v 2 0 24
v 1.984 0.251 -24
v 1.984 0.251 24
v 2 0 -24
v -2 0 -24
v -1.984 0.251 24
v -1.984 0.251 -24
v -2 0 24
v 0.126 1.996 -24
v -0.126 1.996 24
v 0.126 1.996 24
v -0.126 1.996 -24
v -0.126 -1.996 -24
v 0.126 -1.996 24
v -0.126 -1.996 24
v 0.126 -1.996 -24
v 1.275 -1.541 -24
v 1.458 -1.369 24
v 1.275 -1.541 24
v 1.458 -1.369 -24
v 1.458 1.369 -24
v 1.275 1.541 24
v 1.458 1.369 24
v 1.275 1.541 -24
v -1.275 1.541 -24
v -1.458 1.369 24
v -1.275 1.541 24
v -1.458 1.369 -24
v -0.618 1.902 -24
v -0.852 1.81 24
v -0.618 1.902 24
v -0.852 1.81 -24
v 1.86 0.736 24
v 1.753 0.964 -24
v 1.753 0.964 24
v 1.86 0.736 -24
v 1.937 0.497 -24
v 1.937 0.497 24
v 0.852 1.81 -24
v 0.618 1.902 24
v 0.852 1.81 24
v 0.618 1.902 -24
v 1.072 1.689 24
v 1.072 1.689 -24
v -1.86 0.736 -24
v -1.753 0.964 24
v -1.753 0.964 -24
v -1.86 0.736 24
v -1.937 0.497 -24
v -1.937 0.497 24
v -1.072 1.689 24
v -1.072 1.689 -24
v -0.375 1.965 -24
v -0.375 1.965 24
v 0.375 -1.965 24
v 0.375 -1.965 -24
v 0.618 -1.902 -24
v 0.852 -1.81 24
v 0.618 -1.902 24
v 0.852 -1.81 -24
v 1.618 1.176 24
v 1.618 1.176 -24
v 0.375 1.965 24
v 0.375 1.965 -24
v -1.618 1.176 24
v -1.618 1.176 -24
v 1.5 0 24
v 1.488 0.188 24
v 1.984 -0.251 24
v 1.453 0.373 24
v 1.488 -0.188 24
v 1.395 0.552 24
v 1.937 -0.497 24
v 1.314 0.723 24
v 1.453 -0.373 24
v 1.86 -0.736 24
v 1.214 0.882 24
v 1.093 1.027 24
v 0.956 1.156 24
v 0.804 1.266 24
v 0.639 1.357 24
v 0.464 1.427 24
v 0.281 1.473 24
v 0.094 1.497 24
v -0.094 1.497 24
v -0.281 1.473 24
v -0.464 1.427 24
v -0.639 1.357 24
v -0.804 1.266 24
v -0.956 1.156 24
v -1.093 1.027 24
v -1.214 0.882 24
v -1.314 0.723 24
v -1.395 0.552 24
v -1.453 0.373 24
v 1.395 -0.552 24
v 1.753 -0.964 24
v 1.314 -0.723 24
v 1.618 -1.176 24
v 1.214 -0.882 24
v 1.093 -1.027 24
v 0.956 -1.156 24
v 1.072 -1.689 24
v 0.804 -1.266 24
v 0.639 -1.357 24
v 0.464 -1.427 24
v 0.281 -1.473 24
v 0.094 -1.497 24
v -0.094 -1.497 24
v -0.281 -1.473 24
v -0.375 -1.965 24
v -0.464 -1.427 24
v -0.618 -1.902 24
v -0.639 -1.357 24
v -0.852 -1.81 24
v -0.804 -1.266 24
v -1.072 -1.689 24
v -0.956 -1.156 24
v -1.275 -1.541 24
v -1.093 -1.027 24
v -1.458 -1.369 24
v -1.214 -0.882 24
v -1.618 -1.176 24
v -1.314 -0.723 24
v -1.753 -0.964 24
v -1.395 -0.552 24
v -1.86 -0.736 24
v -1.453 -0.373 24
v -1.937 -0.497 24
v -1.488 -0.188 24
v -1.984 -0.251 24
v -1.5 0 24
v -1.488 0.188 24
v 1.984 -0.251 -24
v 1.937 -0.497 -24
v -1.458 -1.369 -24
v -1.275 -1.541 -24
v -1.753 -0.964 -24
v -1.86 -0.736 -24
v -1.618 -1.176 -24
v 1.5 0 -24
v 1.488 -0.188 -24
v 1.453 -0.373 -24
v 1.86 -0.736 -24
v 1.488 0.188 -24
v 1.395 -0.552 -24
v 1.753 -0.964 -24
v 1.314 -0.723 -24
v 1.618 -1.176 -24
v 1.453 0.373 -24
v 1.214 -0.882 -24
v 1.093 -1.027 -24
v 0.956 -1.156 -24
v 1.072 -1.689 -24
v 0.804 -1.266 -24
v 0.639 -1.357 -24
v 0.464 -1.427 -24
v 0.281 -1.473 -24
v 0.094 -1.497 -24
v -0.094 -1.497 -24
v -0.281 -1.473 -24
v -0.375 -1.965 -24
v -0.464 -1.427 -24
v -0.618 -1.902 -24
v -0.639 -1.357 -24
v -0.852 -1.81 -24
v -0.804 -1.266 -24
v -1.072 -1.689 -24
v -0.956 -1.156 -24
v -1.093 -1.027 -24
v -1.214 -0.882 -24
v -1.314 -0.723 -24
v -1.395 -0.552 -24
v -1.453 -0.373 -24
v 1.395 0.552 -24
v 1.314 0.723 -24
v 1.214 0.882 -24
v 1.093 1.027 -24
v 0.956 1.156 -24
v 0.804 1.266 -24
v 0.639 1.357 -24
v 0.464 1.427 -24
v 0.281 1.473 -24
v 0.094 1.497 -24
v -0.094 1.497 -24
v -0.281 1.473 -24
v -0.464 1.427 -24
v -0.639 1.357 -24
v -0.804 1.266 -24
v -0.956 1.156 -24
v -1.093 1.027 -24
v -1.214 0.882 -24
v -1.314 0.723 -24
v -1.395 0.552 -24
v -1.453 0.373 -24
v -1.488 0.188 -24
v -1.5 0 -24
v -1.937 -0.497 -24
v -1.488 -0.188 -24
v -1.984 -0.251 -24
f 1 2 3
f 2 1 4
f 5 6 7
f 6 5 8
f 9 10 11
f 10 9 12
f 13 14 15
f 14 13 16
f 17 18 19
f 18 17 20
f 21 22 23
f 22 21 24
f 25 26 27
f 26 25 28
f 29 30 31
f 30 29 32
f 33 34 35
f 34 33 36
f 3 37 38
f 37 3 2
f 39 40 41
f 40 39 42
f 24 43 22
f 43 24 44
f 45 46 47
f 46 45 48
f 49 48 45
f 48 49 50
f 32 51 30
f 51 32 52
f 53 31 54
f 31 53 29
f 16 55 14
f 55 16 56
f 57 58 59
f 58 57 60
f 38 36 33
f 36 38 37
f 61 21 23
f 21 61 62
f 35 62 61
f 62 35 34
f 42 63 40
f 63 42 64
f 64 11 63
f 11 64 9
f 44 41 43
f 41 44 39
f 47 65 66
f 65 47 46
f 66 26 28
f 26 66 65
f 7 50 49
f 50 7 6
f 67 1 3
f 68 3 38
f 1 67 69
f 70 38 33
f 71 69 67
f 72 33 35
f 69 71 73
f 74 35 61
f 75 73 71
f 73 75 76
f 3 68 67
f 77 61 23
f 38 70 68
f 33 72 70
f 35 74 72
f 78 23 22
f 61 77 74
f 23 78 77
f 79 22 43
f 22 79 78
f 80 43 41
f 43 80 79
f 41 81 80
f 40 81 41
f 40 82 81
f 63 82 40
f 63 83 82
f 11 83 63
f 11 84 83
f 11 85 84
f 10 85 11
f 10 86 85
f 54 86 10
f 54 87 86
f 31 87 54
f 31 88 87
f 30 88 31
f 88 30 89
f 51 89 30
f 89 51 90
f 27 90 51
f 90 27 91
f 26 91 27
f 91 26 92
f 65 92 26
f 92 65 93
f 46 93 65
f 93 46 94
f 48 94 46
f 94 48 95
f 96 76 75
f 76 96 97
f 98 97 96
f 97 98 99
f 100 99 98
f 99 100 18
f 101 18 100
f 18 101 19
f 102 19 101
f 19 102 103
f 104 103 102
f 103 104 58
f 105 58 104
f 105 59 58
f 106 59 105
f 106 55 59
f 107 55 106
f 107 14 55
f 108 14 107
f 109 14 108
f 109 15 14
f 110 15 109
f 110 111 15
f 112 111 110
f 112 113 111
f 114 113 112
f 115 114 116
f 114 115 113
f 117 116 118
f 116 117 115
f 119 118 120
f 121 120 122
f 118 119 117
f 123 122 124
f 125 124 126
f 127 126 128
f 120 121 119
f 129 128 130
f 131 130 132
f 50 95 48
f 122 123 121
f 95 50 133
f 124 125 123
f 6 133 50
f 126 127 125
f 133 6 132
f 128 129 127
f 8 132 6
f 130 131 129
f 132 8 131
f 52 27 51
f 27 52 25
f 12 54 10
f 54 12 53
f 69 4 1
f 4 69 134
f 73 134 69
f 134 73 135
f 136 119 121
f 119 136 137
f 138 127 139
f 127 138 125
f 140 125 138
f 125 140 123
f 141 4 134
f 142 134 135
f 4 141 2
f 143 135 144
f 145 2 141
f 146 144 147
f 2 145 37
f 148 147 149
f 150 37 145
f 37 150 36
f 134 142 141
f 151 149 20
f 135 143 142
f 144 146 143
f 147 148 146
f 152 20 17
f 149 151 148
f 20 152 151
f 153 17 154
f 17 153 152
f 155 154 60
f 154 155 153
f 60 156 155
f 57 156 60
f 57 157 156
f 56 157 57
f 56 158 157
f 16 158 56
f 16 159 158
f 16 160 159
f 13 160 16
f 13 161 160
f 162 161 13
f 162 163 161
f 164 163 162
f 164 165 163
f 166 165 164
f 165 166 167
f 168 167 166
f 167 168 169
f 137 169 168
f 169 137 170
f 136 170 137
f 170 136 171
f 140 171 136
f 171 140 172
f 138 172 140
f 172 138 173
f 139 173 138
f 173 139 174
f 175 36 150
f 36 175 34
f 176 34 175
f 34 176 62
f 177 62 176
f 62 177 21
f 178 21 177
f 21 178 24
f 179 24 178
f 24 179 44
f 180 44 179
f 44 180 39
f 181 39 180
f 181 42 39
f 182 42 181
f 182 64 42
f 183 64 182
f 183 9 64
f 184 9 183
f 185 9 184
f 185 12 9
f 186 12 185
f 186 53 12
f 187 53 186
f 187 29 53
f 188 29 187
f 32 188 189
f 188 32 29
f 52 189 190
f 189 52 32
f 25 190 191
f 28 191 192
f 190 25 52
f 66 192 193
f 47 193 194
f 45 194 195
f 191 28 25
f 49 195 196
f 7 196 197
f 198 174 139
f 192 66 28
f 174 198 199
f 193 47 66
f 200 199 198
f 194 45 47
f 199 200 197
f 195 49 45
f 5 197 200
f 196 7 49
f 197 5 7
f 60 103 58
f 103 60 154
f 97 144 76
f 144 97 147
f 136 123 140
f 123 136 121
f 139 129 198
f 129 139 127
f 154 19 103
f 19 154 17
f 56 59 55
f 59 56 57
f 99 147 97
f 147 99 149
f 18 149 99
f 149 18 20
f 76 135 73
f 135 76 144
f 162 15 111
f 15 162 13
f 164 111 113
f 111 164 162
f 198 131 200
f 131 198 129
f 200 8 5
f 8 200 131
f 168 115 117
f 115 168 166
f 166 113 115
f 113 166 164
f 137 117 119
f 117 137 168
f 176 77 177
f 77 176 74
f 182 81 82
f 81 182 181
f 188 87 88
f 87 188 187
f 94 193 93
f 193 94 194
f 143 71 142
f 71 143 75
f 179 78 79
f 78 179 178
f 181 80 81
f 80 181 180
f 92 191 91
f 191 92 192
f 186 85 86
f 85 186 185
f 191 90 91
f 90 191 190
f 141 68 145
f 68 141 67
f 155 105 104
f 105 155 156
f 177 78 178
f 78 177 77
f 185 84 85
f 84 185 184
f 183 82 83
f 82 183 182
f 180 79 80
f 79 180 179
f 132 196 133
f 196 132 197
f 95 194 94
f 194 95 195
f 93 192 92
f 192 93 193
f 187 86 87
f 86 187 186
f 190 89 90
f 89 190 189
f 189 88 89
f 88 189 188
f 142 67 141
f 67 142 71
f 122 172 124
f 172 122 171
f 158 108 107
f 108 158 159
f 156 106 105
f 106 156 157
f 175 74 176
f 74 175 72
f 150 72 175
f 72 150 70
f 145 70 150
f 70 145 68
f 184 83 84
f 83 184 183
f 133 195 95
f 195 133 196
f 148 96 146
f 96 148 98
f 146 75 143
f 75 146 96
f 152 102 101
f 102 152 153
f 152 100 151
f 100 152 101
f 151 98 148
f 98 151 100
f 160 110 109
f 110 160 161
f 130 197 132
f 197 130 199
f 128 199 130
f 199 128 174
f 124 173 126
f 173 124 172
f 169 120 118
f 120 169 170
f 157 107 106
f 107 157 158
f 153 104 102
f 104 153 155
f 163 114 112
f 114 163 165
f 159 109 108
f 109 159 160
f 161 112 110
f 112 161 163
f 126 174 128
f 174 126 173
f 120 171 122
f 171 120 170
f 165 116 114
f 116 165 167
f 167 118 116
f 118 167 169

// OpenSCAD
$fn = 50;


difference() {
	union() {
		translate(v = [0, 0, -24.0000000000]) {
			cylinder(h = 48, r = 2.0000000000);
		}
	}
	union() {
		translate(v = [0, 0, -100.0000000000]) {
			cylinder(h = 200, r = 1.5000000000);
		}
	}
}
